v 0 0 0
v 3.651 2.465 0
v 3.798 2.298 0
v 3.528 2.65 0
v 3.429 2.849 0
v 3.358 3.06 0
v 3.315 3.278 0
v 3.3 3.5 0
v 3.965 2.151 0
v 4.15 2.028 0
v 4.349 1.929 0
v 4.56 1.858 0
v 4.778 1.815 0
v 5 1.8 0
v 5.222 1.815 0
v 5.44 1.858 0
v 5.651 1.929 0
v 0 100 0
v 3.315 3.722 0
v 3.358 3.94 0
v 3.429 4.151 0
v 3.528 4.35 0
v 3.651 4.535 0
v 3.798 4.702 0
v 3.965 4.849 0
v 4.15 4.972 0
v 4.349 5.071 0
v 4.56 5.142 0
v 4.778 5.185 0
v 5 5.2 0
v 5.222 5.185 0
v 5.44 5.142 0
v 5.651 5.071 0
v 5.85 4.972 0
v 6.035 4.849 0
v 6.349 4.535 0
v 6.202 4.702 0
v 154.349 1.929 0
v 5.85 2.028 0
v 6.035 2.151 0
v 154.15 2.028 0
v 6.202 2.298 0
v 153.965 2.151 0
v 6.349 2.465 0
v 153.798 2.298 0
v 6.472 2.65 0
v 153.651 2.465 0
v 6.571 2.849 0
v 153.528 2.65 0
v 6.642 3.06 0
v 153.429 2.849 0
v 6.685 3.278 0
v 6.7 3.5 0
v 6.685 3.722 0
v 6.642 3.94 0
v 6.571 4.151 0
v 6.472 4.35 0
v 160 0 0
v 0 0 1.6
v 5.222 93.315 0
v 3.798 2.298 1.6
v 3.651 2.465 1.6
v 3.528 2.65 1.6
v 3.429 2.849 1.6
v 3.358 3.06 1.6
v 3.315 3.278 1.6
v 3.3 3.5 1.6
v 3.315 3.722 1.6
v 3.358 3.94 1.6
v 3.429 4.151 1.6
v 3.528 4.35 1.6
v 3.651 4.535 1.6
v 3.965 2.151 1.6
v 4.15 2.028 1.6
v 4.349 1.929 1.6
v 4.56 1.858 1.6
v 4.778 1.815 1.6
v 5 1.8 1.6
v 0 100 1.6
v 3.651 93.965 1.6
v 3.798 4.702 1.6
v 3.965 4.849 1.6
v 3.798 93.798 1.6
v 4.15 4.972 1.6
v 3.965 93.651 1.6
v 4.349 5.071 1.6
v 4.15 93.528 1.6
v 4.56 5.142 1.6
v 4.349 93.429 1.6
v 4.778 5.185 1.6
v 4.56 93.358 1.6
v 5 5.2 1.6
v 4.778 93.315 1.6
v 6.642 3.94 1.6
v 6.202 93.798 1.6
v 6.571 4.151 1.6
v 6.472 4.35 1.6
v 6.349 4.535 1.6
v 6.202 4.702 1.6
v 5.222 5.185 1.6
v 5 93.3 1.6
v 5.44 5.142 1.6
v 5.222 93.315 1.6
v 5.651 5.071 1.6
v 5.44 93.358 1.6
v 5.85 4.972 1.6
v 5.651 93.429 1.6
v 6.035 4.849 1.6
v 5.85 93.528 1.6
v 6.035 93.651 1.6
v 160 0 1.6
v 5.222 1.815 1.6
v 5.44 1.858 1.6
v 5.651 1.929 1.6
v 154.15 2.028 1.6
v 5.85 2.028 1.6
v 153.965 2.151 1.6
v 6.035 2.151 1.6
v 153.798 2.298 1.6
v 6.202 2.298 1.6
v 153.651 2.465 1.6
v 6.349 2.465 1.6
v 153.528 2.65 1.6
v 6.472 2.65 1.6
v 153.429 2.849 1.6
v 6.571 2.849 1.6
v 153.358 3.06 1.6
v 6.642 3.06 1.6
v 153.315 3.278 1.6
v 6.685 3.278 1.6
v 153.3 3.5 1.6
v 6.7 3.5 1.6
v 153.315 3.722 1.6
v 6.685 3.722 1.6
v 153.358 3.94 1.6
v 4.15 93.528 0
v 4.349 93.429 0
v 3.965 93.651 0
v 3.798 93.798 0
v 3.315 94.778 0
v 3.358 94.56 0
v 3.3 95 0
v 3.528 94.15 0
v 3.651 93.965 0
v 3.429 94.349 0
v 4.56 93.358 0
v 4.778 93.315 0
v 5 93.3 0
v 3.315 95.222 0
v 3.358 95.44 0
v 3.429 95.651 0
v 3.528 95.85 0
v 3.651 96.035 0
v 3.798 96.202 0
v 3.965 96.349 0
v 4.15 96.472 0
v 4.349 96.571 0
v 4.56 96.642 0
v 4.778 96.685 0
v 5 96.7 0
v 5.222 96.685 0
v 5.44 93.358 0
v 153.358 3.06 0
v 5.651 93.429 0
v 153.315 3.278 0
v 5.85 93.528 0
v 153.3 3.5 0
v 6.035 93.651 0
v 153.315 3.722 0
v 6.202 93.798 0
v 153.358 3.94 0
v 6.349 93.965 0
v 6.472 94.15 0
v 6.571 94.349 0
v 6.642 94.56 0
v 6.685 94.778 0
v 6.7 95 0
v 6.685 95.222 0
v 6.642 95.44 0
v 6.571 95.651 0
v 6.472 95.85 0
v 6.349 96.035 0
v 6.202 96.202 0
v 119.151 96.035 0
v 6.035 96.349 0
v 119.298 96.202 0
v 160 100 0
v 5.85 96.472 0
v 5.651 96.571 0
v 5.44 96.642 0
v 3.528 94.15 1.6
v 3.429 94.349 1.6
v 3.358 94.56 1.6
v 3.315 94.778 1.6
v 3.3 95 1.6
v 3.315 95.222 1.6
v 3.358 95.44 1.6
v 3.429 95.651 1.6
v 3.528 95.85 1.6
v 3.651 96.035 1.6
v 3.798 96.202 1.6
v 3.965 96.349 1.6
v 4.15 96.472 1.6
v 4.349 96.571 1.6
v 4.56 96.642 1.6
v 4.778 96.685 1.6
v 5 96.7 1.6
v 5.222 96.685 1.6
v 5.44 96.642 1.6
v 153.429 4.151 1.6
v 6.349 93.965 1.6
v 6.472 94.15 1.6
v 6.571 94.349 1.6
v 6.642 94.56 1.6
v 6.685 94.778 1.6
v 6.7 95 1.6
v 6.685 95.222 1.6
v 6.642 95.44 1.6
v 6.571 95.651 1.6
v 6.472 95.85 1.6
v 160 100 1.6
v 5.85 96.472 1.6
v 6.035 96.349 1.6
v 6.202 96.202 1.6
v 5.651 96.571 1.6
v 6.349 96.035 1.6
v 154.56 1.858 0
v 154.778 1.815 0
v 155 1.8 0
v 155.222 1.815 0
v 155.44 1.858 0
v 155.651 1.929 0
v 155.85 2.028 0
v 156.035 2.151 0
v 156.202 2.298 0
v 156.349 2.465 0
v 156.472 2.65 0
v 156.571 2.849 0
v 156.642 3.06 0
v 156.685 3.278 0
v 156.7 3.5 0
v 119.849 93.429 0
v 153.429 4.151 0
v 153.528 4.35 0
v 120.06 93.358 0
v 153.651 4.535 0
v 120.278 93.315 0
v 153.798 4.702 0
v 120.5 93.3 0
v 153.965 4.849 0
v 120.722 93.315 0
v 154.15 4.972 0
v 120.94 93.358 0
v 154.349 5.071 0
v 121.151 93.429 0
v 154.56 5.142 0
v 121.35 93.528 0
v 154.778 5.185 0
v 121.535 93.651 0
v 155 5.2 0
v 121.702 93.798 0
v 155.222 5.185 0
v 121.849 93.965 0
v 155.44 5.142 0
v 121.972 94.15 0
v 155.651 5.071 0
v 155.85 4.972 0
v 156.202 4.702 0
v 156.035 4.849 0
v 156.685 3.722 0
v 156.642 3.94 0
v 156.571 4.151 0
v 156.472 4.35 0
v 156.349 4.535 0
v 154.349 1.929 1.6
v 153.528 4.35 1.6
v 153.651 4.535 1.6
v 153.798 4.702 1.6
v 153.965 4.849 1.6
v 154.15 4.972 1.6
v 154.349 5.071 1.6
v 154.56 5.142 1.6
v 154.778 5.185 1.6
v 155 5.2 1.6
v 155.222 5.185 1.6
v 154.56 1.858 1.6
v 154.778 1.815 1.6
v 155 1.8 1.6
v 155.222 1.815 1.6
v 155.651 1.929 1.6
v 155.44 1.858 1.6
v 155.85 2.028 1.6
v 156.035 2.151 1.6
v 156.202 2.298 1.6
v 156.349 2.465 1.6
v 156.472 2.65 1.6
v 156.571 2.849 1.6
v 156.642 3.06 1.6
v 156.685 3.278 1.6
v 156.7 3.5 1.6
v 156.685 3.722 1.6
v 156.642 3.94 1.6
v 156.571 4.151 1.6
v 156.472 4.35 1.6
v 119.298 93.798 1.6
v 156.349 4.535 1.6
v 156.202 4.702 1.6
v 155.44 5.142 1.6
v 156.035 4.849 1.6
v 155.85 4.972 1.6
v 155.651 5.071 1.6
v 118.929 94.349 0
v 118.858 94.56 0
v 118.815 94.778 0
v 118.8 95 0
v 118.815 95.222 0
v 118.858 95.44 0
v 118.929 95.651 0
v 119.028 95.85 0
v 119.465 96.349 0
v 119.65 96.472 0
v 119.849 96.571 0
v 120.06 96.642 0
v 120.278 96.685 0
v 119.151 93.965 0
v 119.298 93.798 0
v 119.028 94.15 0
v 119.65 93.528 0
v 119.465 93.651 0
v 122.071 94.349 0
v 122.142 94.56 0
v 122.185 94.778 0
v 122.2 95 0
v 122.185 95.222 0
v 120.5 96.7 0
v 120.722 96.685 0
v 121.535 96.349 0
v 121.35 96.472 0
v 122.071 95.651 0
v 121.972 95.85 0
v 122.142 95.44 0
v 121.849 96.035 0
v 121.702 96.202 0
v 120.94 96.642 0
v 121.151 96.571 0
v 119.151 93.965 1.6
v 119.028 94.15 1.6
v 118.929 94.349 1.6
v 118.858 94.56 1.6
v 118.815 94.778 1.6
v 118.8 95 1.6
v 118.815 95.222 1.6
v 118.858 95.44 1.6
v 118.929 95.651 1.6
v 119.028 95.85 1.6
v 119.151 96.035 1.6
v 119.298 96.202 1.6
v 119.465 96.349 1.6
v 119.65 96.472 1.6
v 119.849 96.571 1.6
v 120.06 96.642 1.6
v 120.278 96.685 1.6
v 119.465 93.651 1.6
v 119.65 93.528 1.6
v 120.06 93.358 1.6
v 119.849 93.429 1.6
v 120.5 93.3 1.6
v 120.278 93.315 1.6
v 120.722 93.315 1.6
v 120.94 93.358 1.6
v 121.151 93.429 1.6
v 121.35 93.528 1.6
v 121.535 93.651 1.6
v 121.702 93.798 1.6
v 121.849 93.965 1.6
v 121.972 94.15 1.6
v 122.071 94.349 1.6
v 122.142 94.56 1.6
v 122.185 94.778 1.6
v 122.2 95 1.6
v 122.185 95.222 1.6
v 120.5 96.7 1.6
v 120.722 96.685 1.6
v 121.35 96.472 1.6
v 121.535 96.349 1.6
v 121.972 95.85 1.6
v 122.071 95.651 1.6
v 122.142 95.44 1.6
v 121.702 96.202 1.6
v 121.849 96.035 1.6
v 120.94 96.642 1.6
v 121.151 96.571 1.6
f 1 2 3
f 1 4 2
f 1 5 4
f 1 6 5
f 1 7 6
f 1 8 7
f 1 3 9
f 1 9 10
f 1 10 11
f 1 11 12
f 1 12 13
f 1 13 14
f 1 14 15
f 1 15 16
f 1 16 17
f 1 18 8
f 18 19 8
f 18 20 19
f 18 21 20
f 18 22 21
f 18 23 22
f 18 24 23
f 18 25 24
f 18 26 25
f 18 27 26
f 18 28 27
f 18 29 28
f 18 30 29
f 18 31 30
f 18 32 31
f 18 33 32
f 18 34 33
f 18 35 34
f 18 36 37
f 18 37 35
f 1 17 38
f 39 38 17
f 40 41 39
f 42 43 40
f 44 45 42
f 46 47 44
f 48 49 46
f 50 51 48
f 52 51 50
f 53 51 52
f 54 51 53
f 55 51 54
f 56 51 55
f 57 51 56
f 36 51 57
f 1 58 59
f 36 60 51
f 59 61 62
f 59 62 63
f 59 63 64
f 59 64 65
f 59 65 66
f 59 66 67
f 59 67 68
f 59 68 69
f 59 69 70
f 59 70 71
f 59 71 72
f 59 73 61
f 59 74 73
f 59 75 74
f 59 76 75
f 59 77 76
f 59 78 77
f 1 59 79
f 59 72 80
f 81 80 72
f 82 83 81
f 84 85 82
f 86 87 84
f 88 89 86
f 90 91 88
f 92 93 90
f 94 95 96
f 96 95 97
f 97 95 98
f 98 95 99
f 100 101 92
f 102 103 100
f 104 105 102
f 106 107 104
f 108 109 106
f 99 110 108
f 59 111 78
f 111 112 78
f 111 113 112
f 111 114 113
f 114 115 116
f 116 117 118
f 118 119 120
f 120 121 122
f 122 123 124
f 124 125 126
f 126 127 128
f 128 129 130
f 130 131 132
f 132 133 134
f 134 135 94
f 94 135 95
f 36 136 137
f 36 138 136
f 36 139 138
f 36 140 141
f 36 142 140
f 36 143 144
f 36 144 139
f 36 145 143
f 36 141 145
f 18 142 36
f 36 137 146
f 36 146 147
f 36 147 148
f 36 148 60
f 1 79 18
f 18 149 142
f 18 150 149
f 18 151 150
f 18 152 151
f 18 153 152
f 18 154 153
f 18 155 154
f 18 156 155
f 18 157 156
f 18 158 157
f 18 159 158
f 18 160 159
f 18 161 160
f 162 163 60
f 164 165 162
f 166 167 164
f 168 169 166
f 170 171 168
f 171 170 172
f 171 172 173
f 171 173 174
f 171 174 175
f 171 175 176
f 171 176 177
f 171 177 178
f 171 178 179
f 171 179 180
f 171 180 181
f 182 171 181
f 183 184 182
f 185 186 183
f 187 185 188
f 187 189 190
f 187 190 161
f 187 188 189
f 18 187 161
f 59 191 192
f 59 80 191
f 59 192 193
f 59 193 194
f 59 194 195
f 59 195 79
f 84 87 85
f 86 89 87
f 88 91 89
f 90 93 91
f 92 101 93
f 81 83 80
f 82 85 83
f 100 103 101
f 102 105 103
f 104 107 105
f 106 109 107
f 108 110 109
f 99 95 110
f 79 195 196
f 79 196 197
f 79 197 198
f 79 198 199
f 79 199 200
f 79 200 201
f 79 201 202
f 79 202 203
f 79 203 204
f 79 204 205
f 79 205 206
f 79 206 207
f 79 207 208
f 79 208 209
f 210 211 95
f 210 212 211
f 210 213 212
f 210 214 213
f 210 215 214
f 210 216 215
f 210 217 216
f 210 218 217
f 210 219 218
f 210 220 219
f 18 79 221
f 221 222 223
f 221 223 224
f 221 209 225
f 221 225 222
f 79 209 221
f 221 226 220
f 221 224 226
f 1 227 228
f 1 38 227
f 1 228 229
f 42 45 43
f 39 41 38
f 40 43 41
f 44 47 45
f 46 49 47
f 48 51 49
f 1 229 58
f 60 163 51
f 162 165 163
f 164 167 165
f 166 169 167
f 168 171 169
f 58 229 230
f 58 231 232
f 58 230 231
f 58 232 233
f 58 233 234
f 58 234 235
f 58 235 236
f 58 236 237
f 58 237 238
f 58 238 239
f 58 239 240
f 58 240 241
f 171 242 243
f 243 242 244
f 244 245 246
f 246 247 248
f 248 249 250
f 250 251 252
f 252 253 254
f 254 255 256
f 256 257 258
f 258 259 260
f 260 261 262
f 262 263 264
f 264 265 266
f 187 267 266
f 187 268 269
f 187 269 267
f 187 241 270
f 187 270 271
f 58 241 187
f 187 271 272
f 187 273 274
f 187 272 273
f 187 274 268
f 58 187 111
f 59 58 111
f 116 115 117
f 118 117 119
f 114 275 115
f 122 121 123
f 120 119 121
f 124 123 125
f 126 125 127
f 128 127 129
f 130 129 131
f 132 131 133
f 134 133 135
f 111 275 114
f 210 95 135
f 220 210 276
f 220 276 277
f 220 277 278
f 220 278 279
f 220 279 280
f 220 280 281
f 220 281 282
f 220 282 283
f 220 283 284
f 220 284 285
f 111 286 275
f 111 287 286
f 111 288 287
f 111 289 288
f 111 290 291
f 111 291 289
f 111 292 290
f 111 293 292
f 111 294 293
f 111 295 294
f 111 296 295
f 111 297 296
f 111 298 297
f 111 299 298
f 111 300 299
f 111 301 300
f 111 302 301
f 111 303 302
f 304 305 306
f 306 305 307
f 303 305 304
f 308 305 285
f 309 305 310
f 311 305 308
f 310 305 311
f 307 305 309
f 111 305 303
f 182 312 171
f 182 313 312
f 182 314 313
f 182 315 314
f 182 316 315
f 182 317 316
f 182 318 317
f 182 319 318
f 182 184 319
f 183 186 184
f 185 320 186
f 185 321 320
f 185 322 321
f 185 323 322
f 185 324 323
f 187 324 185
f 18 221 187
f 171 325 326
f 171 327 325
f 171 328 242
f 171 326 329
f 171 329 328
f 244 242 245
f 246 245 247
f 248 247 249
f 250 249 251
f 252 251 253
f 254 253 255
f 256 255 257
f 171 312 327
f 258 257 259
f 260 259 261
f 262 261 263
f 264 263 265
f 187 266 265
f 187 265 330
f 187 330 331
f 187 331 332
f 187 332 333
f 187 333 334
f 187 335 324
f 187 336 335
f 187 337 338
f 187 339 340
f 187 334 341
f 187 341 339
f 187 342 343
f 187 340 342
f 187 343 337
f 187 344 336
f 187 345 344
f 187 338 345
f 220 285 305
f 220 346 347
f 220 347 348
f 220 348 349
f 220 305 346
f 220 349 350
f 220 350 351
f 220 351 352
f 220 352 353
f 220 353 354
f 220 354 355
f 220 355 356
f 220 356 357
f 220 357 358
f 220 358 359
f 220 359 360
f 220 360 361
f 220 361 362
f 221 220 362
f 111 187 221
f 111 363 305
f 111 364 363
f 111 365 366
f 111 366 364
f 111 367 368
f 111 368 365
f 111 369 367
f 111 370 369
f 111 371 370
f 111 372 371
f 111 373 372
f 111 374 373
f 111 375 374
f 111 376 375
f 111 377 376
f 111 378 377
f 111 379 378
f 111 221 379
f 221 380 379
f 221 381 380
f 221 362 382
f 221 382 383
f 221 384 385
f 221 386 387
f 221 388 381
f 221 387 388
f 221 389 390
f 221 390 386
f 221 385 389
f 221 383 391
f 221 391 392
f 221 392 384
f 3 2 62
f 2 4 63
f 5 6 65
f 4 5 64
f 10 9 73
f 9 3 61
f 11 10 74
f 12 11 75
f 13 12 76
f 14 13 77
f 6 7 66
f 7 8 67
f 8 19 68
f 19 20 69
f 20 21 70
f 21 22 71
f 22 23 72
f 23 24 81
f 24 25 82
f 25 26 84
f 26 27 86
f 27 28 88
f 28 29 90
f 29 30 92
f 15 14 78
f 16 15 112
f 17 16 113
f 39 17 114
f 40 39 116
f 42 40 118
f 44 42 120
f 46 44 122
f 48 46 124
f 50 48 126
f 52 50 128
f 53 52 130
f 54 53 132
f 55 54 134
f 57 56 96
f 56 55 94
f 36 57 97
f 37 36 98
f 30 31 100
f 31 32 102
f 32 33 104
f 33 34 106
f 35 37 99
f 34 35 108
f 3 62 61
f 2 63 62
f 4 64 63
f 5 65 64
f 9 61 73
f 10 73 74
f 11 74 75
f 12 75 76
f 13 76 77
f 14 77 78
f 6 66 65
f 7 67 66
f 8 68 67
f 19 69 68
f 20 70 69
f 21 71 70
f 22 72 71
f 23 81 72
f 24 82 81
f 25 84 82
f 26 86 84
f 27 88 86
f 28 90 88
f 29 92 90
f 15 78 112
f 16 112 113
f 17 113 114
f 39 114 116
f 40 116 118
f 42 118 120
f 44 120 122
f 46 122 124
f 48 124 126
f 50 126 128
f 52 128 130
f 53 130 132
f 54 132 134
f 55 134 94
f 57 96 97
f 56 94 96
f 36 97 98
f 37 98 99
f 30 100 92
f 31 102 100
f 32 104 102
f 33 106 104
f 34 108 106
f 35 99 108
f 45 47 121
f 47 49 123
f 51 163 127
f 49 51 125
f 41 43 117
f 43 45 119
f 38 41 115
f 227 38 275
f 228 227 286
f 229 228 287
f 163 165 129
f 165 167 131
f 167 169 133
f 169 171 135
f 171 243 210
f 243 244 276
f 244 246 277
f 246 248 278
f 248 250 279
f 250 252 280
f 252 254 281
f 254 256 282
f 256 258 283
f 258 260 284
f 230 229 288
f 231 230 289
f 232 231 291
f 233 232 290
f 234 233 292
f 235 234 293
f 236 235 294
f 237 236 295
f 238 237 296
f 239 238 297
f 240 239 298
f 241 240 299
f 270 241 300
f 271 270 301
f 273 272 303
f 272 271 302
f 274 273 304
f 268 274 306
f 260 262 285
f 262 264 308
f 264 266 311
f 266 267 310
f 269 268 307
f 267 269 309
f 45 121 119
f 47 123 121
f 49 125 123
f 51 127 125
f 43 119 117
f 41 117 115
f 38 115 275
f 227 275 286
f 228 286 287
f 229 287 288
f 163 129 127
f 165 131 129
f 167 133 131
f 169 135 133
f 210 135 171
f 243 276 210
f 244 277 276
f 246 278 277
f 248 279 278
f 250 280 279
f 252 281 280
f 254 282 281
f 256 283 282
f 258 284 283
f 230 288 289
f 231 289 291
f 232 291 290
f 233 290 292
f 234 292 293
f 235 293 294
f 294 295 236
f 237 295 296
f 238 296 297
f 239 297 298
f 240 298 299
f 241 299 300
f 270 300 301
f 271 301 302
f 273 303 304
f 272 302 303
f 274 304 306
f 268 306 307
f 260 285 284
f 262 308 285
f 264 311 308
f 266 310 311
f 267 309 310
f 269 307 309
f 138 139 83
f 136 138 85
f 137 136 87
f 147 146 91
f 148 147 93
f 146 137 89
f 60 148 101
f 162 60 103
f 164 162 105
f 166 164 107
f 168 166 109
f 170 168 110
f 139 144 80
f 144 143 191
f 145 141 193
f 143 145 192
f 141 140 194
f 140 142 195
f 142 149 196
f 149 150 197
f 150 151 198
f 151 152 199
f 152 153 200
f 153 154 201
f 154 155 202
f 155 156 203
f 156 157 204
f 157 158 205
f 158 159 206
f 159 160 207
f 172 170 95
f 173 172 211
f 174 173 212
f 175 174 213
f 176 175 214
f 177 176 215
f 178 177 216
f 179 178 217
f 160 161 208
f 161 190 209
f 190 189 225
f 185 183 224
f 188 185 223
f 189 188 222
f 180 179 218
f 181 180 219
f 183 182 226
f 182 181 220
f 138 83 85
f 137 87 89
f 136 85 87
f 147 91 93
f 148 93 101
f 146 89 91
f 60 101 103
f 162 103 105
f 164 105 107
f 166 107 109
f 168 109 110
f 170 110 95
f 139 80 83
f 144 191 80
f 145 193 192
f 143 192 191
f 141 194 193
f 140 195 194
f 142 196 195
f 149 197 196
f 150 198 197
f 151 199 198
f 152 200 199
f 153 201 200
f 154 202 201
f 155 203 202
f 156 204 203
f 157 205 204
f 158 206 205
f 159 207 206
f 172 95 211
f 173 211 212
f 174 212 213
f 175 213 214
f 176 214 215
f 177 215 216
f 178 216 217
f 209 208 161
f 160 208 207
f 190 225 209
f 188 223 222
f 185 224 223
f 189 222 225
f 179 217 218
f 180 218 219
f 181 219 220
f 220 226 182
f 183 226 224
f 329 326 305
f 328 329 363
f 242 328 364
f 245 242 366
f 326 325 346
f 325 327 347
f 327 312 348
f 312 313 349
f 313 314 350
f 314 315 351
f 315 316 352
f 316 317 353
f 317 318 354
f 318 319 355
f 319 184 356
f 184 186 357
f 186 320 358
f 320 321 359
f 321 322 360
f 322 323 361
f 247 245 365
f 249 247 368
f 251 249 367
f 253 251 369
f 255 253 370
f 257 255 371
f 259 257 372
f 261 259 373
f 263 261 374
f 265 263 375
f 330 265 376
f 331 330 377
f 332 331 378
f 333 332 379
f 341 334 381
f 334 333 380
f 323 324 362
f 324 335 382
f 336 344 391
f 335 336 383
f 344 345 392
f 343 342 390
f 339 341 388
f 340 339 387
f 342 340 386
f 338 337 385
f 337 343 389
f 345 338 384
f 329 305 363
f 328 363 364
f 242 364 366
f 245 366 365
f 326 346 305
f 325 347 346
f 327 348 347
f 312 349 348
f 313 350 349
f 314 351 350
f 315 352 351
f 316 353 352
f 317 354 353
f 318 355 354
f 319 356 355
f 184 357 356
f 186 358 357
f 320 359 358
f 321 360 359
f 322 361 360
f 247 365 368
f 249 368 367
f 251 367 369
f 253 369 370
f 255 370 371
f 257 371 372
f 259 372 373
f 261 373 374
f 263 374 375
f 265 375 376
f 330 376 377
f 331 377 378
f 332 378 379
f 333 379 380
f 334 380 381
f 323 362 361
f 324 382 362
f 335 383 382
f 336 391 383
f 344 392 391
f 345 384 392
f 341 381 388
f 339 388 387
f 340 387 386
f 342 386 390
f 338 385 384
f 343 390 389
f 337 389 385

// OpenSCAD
// CONCEPT MOCK-UP ONLY. Units mm. Generated from parameters.json; not a fabrication-ready PCB.
difference() {
cube([160.0,100.0,1.6]);
translate([5.0, 3.5, -0.02]) { cylinder(d=3.4,h=1.6400000000000001,$fn=48); }
translate([155.0, 3.5, -0.02]) { cylinder(d=3.4,h=1.6400000000000001,$fn=48); }
translate([5.0, 95.0, -0.02]) { cylinder(d=3.4,h=1.6400000000000001,$fn=48); }
translate([120.5, 95.0, -0.02]) { cylinder(d=3.4,h=1.6400000000000001,$fn=48); }
}
